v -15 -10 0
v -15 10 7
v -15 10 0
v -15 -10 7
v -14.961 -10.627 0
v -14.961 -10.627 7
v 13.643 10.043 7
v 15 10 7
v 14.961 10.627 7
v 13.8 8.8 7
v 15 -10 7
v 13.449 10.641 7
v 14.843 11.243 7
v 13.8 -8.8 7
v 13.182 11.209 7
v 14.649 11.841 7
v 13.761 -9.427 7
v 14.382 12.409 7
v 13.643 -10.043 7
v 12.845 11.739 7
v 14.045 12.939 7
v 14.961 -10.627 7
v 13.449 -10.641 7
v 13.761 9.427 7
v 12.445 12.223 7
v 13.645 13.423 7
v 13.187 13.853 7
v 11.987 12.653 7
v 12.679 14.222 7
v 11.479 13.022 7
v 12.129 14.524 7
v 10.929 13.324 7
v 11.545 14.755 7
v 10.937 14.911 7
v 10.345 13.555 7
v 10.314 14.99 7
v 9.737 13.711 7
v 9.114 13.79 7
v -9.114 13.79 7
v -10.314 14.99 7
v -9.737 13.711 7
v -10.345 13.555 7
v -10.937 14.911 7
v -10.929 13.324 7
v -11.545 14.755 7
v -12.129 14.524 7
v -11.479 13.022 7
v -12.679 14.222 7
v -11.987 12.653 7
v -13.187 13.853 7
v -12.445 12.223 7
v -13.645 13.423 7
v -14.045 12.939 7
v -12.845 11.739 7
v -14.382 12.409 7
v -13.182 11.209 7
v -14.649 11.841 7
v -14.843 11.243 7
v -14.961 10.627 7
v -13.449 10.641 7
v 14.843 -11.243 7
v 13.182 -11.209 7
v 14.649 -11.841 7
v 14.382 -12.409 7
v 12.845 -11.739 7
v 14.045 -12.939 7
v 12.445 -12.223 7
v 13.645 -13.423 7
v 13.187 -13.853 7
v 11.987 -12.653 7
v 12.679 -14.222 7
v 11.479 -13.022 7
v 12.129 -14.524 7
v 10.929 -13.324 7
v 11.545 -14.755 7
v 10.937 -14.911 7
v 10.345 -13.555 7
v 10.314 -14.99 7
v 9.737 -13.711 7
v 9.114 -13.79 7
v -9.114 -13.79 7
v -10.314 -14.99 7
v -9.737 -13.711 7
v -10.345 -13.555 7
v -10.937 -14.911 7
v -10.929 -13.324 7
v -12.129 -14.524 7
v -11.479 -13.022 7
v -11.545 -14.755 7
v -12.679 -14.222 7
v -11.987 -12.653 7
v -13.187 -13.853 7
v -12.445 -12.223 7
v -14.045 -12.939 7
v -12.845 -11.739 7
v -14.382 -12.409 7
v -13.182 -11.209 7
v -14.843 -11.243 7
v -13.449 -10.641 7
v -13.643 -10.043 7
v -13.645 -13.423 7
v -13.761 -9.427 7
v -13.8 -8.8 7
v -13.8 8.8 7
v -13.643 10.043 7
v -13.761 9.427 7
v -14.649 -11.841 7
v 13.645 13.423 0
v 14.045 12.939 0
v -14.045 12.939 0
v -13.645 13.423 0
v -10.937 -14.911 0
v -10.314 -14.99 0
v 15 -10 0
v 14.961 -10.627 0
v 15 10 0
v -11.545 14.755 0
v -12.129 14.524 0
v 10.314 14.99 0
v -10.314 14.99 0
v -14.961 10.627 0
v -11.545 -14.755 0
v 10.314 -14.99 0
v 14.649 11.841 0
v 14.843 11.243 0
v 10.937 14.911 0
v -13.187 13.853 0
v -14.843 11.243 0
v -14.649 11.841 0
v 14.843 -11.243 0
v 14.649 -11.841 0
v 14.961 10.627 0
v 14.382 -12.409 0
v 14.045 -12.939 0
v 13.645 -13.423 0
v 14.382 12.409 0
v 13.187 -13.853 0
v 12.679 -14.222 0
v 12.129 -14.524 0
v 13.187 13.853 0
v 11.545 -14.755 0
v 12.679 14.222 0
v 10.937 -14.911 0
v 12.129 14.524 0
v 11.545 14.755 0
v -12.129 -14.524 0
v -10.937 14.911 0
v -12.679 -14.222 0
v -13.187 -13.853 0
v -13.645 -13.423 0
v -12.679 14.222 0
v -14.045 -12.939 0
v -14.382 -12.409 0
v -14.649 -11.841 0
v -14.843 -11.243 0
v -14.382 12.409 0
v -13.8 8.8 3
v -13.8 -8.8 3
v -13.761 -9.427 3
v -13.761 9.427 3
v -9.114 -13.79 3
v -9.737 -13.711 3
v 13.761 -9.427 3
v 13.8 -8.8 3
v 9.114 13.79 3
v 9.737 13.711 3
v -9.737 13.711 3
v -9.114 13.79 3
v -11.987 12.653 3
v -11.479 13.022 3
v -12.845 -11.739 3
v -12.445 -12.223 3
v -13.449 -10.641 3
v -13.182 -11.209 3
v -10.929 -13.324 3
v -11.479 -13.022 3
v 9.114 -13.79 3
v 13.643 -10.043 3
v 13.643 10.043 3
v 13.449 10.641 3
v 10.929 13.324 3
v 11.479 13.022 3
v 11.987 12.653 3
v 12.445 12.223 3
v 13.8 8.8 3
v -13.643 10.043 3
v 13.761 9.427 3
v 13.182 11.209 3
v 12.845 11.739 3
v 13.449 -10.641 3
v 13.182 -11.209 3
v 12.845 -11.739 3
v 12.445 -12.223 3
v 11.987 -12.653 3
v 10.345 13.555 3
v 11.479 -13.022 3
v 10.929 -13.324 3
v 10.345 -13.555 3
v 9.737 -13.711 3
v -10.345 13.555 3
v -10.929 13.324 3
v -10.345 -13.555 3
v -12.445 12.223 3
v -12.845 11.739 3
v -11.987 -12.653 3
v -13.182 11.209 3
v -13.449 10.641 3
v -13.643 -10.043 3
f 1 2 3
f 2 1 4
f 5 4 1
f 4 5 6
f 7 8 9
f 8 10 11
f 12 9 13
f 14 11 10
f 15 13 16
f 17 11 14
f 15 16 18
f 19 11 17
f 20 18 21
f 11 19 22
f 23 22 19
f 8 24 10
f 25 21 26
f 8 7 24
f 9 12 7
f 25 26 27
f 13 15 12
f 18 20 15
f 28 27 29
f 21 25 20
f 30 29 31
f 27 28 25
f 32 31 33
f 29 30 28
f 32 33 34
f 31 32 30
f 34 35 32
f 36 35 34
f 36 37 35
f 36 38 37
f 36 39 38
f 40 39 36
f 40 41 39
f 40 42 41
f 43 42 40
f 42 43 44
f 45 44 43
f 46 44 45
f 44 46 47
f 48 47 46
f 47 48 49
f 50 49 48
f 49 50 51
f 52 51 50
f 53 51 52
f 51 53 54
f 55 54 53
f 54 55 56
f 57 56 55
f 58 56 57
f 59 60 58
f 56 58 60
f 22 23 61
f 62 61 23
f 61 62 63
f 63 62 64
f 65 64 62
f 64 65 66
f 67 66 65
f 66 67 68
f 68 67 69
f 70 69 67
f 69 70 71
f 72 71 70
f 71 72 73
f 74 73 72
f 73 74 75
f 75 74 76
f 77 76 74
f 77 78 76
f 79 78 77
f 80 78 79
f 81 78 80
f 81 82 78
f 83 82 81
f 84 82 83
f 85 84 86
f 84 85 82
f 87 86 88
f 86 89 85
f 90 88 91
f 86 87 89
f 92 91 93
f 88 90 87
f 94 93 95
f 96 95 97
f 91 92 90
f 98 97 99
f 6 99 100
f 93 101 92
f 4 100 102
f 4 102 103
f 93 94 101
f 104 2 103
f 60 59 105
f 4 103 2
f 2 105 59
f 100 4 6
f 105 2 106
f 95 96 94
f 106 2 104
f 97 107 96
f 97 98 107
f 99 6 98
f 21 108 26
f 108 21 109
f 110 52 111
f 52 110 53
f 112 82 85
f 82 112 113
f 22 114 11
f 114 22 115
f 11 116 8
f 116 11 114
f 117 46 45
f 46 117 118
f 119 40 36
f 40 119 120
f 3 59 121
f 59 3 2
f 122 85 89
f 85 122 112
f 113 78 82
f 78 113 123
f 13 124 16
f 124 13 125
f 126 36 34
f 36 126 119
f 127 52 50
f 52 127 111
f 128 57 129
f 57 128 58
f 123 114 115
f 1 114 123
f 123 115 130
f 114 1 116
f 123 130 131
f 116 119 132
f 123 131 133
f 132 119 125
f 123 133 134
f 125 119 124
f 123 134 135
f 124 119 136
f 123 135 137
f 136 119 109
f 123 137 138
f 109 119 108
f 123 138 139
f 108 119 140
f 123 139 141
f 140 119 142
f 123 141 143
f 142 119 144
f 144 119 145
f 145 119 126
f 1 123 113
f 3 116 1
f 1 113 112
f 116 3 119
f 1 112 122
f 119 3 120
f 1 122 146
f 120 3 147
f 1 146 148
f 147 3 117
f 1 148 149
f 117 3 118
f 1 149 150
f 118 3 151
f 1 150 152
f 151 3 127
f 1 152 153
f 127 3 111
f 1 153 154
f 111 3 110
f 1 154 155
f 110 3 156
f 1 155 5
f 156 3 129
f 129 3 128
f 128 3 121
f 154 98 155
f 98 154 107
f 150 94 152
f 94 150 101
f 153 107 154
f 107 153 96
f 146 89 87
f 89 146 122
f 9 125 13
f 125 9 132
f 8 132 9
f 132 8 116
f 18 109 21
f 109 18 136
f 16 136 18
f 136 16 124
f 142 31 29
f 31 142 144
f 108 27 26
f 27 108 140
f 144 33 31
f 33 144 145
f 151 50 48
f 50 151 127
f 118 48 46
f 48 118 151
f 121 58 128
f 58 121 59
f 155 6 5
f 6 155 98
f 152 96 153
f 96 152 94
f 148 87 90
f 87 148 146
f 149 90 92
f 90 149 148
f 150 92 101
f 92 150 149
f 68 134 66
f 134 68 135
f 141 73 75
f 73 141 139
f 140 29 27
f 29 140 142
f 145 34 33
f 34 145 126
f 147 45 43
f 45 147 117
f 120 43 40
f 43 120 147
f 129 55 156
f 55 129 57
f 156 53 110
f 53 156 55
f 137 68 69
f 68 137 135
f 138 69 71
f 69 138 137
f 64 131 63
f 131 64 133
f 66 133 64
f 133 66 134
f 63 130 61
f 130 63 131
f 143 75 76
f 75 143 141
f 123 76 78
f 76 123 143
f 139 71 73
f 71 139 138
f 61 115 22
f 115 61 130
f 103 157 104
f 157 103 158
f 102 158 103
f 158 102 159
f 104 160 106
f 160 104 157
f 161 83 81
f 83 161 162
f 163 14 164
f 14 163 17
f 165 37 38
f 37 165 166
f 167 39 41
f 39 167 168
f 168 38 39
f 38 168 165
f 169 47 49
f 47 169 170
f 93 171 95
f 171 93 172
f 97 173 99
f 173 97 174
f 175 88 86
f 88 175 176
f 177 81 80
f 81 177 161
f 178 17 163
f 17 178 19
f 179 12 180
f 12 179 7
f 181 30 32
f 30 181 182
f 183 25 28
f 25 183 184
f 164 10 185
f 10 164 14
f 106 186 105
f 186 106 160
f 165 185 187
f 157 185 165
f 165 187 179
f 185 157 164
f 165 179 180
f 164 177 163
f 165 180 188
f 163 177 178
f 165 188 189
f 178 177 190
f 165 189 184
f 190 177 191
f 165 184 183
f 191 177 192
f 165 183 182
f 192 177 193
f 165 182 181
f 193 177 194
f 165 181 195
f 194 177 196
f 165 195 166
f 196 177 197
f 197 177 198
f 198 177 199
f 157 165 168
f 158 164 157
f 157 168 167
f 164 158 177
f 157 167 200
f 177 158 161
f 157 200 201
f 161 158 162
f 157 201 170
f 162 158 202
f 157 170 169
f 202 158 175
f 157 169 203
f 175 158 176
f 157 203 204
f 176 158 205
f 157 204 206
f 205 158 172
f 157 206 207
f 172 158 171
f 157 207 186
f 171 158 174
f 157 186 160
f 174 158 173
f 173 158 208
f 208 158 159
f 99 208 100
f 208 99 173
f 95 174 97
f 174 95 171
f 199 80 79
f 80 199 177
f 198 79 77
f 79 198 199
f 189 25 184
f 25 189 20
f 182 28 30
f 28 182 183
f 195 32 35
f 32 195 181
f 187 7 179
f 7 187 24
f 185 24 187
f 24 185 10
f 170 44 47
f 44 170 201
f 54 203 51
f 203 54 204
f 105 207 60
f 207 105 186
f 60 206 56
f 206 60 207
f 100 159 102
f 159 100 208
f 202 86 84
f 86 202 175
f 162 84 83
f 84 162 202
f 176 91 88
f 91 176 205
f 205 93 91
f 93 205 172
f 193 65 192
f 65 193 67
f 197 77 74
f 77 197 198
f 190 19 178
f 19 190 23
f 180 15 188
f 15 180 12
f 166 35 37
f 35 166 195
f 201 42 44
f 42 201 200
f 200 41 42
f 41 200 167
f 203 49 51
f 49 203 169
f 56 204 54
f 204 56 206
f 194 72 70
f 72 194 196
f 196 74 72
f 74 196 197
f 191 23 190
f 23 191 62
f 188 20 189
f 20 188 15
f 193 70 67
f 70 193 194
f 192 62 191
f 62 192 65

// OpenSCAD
$fn = 50;


difference() {
	union() {
		hull() {
			translate(v = [-10.0000000000, 10.0000000000, 0]) {
				cylinder(h = 7, r = 5);
			}
			translate(v = [10.0000000000, 10.0000000000, 0]) {
				cylinder(h = 7, r = 5);
			}
			translate(v = [-10.0000000000, -10.0000000000, 0]) {
				cylinder(h = 7, r = 5);
			}
			translate(v = [10.0000000000, -10.0000000000, 0]) {
				cylinder(h = 7, r = 5);
			}
		}
	}
	union() {
		translate(v = [0, 0, 3]) {
			#hull() {
				translate(v = [-8.8000000000, 8.8000000000, 0]) {
					cylinder(h = 4, r = 5);
				}
				translate(v = [8.8000000000, 8.8000000000, 0]) {
					cylinder(h = 4, r = 5);
				}
				translate(v = [-8.8000000000, -8.8000000000, 0]) {
					cylinder(h = 4, r = 5);
				}
				translate(v = [8.8000000000, -8.8000000000, 0]) {
					cylinder(h = 4, r = 5);
				}
			}
		}
	}
}
